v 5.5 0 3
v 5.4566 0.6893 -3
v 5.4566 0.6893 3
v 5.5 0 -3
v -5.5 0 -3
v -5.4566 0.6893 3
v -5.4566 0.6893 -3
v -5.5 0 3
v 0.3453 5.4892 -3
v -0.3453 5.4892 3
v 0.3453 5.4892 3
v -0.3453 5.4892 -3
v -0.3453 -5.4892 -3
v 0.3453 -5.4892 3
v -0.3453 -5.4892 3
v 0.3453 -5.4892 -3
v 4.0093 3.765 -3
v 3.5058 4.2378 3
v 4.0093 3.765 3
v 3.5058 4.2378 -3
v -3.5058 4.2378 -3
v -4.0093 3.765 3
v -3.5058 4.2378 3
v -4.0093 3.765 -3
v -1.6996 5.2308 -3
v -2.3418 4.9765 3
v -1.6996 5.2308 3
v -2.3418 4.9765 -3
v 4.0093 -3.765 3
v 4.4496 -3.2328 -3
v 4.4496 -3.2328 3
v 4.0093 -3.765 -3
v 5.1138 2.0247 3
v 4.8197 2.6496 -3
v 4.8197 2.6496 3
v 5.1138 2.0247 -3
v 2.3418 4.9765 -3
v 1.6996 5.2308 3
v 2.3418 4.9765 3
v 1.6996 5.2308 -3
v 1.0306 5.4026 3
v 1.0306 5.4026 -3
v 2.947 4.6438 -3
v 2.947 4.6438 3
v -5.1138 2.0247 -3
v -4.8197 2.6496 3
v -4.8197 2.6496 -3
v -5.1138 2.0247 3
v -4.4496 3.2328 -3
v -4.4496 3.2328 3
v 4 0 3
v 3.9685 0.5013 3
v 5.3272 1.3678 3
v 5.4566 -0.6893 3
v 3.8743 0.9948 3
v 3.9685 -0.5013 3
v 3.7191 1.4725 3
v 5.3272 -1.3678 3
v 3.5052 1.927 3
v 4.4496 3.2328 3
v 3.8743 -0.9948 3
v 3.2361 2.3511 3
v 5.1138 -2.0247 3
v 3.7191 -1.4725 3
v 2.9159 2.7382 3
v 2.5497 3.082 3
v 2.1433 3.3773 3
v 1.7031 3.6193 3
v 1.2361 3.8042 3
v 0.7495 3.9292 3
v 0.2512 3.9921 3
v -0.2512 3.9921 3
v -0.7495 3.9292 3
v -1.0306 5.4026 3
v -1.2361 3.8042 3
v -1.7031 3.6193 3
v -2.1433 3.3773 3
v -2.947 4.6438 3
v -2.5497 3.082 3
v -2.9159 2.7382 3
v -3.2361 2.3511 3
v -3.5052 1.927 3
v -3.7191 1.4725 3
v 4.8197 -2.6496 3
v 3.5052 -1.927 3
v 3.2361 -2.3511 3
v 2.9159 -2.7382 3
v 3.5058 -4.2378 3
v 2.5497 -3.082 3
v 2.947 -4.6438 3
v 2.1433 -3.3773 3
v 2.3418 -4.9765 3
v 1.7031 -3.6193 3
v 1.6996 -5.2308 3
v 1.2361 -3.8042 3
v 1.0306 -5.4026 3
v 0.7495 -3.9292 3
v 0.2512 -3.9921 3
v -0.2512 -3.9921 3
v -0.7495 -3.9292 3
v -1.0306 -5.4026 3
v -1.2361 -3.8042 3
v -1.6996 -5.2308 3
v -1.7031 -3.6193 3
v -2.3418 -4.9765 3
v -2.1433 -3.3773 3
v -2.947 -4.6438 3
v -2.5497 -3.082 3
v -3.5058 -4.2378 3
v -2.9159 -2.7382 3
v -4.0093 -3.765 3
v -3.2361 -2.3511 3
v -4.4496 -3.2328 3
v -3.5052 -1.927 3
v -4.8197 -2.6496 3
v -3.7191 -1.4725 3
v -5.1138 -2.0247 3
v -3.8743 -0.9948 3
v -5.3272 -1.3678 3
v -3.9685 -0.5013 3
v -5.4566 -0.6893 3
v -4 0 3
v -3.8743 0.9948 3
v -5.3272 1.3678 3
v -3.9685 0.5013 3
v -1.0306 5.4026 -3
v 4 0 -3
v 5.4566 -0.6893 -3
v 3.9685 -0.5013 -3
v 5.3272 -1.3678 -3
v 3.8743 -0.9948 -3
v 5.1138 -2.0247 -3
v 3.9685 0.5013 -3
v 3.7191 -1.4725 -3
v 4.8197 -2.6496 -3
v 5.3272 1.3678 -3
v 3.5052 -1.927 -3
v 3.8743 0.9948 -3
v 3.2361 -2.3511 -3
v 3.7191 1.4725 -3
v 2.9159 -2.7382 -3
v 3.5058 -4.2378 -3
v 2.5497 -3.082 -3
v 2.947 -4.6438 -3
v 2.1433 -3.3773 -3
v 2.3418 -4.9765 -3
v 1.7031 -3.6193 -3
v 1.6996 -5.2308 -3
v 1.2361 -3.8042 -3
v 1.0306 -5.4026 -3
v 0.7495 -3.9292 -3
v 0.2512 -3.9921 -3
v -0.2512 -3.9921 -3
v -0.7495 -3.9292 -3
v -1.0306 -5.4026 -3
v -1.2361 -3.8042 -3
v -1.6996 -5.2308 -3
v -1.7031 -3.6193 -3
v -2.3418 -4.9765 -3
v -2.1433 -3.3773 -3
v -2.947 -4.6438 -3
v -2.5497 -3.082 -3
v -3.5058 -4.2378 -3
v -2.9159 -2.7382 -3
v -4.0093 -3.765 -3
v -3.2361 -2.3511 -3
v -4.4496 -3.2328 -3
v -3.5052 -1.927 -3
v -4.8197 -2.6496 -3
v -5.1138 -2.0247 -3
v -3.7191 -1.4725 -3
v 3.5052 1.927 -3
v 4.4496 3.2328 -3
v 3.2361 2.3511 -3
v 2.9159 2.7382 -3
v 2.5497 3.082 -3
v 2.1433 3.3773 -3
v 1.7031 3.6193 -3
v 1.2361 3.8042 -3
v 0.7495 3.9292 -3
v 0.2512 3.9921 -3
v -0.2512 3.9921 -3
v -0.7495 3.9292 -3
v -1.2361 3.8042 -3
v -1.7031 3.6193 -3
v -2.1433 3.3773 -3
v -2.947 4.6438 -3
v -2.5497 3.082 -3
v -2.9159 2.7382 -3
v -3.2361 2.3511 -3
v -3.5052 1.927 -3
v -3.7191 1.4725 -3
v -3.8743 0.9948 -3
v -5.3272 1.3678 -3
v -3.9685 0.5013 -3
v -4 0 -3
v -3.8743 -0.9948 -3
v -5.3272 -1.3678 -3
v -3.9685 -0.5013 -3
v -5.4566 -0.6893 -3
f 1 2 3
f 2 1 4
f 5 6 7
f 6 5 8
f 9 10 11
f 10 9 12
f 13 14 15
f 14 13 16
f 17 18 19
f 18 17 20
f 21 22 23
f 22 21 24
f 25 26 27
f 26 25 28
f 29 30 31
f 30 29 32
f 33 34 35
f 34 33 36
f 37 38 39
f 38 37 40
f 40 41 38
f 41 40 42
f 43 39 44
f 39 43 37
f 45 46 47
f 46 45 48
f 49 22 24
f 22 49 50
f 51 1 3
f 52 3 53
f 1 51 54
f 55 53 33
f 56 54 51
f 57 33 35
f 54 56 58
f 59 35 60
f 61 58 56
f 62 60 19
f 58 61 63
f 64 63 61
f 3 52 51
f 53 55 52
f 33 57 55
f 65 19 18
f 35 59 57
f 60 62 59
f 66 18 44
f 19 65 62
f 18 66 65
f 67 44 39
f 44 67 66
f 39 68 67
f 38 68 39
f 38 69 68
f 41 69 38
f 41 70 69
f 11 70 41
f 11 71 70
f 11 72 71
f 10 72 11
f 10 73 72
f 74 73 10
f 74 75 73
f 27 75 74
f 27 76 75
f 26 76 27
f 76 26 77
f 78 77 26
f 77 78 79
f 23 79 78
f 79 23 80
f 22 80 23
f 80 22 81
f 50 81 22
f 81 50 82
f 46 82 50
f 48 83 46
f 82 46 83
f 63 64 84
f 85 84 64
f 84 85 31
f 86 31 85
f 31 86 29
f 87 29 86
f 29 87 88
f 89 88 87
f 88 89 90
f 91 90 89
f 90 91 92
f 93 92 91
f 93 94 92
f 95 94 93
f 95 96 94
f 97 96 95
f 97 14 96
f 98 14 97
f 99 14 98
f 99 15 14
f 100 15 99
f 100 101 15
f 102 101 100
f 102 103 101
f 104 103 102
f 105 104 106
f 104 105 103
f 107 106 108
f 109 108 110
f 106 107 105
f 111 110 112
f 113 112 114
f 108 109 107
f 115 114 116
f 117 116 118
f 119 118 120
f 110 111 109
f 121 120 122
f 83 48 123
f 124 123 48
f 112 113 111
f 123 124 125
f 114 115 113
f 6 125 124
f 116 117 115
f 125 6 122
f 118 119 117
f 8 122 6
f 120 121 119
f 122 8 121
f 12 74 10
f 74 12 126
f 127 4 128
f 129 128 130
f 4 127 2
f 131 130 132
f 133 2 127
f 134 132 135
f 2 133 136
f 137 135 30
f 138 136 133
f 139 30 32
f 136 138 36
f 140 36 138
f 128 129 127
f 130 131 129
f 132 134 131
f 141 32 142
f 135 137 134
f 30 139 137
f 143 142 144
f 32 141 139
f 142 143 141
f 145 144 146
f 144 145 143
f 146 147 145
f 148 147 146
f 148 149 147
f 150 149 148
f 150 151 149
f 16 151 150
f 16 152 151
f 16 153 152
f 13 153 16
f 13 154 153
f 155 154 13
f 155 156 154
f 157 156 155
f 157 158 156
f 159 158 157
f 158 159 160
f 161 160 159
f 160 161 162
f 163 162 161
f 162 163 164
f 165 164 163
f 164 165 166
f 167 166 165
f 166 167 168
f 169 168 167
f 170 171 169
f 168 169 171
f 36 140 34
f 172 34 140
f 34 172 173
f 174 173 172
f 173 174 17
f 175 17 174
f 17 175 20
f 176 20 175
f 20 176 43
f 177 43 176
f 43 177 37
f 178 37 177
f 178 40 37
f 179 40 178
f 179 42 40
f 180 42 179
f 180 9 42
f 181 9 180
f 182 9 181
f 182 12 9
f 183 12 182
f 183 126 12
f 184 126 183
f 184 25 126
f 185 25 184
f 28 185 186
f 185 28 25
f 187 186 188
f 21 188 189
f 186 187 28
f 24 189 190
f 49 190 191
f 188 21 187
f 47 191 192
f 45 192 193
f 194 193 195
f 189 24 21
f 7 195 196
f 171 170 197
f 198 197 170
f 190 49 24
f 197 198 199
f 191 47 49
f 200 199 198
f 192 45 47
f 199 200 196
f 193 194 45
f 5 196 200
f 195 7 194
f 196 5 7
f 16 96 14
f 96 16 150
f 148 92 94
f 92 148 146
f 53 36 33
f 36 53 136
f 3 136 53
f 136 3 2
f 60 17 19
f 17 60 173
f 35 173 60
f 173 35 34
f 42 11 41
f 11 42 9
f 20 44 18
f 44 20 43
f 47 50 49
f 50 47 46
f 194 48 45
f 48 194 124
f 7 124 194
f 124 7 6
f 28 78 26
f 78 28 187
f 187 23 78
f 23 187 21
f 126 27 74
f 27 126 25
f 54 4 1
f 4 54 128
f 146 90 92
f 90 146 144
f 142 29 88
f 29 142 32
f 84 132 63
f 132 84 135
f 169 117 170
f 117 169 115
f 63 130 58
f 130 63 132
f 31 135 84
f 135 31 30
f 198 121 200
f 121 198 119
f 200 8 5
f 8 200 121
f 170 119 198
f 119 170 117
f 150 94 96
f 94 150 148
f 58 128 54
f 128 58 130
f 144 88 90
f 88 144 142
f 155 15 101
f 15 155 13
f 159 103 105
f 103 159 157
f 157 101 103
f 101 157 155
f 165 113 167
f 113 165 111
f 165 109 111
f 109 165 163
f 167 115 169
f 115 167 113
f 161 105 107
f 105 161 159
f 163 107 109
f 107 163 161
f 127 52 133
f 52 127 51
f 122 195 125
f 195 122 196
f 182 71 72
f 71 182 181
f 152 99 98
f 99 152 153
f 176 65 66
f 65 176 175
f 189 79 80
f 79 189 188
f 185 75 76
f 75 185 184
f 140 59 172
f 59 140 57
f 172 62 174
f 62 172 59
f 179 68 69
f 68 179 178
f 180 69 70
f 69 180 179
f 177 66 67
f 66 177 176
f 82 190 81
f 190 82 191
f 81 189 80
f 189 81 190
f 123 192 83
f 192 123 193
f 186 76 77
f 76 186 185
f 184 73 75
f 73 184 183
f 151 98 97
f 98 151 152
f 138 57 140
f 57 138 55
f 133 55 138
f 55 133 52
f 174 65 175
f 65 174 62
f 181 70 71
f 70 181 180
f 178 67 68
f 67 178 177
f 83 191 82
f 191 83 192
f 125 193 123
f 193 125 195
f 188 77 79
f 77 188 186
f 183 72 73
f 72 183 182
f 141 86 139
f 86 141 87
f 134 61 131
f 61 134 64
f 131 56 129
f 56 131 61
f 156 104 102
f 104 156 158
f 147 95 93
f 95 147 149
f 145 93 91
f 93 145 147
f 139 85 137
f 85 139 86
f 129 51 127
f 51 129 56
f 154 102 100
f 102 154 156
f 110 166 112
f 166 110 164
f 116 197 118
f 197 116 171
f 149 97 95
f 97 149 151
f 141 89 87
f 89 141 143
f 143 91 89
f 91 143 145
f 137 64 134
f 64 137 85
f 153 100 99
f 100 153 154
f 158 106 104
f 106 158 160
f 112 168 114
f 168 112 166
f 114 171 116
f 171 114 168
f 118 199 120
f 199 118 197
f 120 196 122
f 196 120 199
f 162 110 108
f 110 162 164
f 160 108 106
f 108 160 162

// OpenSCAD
$fn = 50;


difference() {
	union() {
		translate(v = [0, 0, -3.0000000000]) {
			cylinder(h = 6, r = 5.5000000000);
		}
	}
	union() {
		translate(v = [0, 0, -100.0000000000]) {
			cylinder(h = 200, r = 4);
		}
	}
}
